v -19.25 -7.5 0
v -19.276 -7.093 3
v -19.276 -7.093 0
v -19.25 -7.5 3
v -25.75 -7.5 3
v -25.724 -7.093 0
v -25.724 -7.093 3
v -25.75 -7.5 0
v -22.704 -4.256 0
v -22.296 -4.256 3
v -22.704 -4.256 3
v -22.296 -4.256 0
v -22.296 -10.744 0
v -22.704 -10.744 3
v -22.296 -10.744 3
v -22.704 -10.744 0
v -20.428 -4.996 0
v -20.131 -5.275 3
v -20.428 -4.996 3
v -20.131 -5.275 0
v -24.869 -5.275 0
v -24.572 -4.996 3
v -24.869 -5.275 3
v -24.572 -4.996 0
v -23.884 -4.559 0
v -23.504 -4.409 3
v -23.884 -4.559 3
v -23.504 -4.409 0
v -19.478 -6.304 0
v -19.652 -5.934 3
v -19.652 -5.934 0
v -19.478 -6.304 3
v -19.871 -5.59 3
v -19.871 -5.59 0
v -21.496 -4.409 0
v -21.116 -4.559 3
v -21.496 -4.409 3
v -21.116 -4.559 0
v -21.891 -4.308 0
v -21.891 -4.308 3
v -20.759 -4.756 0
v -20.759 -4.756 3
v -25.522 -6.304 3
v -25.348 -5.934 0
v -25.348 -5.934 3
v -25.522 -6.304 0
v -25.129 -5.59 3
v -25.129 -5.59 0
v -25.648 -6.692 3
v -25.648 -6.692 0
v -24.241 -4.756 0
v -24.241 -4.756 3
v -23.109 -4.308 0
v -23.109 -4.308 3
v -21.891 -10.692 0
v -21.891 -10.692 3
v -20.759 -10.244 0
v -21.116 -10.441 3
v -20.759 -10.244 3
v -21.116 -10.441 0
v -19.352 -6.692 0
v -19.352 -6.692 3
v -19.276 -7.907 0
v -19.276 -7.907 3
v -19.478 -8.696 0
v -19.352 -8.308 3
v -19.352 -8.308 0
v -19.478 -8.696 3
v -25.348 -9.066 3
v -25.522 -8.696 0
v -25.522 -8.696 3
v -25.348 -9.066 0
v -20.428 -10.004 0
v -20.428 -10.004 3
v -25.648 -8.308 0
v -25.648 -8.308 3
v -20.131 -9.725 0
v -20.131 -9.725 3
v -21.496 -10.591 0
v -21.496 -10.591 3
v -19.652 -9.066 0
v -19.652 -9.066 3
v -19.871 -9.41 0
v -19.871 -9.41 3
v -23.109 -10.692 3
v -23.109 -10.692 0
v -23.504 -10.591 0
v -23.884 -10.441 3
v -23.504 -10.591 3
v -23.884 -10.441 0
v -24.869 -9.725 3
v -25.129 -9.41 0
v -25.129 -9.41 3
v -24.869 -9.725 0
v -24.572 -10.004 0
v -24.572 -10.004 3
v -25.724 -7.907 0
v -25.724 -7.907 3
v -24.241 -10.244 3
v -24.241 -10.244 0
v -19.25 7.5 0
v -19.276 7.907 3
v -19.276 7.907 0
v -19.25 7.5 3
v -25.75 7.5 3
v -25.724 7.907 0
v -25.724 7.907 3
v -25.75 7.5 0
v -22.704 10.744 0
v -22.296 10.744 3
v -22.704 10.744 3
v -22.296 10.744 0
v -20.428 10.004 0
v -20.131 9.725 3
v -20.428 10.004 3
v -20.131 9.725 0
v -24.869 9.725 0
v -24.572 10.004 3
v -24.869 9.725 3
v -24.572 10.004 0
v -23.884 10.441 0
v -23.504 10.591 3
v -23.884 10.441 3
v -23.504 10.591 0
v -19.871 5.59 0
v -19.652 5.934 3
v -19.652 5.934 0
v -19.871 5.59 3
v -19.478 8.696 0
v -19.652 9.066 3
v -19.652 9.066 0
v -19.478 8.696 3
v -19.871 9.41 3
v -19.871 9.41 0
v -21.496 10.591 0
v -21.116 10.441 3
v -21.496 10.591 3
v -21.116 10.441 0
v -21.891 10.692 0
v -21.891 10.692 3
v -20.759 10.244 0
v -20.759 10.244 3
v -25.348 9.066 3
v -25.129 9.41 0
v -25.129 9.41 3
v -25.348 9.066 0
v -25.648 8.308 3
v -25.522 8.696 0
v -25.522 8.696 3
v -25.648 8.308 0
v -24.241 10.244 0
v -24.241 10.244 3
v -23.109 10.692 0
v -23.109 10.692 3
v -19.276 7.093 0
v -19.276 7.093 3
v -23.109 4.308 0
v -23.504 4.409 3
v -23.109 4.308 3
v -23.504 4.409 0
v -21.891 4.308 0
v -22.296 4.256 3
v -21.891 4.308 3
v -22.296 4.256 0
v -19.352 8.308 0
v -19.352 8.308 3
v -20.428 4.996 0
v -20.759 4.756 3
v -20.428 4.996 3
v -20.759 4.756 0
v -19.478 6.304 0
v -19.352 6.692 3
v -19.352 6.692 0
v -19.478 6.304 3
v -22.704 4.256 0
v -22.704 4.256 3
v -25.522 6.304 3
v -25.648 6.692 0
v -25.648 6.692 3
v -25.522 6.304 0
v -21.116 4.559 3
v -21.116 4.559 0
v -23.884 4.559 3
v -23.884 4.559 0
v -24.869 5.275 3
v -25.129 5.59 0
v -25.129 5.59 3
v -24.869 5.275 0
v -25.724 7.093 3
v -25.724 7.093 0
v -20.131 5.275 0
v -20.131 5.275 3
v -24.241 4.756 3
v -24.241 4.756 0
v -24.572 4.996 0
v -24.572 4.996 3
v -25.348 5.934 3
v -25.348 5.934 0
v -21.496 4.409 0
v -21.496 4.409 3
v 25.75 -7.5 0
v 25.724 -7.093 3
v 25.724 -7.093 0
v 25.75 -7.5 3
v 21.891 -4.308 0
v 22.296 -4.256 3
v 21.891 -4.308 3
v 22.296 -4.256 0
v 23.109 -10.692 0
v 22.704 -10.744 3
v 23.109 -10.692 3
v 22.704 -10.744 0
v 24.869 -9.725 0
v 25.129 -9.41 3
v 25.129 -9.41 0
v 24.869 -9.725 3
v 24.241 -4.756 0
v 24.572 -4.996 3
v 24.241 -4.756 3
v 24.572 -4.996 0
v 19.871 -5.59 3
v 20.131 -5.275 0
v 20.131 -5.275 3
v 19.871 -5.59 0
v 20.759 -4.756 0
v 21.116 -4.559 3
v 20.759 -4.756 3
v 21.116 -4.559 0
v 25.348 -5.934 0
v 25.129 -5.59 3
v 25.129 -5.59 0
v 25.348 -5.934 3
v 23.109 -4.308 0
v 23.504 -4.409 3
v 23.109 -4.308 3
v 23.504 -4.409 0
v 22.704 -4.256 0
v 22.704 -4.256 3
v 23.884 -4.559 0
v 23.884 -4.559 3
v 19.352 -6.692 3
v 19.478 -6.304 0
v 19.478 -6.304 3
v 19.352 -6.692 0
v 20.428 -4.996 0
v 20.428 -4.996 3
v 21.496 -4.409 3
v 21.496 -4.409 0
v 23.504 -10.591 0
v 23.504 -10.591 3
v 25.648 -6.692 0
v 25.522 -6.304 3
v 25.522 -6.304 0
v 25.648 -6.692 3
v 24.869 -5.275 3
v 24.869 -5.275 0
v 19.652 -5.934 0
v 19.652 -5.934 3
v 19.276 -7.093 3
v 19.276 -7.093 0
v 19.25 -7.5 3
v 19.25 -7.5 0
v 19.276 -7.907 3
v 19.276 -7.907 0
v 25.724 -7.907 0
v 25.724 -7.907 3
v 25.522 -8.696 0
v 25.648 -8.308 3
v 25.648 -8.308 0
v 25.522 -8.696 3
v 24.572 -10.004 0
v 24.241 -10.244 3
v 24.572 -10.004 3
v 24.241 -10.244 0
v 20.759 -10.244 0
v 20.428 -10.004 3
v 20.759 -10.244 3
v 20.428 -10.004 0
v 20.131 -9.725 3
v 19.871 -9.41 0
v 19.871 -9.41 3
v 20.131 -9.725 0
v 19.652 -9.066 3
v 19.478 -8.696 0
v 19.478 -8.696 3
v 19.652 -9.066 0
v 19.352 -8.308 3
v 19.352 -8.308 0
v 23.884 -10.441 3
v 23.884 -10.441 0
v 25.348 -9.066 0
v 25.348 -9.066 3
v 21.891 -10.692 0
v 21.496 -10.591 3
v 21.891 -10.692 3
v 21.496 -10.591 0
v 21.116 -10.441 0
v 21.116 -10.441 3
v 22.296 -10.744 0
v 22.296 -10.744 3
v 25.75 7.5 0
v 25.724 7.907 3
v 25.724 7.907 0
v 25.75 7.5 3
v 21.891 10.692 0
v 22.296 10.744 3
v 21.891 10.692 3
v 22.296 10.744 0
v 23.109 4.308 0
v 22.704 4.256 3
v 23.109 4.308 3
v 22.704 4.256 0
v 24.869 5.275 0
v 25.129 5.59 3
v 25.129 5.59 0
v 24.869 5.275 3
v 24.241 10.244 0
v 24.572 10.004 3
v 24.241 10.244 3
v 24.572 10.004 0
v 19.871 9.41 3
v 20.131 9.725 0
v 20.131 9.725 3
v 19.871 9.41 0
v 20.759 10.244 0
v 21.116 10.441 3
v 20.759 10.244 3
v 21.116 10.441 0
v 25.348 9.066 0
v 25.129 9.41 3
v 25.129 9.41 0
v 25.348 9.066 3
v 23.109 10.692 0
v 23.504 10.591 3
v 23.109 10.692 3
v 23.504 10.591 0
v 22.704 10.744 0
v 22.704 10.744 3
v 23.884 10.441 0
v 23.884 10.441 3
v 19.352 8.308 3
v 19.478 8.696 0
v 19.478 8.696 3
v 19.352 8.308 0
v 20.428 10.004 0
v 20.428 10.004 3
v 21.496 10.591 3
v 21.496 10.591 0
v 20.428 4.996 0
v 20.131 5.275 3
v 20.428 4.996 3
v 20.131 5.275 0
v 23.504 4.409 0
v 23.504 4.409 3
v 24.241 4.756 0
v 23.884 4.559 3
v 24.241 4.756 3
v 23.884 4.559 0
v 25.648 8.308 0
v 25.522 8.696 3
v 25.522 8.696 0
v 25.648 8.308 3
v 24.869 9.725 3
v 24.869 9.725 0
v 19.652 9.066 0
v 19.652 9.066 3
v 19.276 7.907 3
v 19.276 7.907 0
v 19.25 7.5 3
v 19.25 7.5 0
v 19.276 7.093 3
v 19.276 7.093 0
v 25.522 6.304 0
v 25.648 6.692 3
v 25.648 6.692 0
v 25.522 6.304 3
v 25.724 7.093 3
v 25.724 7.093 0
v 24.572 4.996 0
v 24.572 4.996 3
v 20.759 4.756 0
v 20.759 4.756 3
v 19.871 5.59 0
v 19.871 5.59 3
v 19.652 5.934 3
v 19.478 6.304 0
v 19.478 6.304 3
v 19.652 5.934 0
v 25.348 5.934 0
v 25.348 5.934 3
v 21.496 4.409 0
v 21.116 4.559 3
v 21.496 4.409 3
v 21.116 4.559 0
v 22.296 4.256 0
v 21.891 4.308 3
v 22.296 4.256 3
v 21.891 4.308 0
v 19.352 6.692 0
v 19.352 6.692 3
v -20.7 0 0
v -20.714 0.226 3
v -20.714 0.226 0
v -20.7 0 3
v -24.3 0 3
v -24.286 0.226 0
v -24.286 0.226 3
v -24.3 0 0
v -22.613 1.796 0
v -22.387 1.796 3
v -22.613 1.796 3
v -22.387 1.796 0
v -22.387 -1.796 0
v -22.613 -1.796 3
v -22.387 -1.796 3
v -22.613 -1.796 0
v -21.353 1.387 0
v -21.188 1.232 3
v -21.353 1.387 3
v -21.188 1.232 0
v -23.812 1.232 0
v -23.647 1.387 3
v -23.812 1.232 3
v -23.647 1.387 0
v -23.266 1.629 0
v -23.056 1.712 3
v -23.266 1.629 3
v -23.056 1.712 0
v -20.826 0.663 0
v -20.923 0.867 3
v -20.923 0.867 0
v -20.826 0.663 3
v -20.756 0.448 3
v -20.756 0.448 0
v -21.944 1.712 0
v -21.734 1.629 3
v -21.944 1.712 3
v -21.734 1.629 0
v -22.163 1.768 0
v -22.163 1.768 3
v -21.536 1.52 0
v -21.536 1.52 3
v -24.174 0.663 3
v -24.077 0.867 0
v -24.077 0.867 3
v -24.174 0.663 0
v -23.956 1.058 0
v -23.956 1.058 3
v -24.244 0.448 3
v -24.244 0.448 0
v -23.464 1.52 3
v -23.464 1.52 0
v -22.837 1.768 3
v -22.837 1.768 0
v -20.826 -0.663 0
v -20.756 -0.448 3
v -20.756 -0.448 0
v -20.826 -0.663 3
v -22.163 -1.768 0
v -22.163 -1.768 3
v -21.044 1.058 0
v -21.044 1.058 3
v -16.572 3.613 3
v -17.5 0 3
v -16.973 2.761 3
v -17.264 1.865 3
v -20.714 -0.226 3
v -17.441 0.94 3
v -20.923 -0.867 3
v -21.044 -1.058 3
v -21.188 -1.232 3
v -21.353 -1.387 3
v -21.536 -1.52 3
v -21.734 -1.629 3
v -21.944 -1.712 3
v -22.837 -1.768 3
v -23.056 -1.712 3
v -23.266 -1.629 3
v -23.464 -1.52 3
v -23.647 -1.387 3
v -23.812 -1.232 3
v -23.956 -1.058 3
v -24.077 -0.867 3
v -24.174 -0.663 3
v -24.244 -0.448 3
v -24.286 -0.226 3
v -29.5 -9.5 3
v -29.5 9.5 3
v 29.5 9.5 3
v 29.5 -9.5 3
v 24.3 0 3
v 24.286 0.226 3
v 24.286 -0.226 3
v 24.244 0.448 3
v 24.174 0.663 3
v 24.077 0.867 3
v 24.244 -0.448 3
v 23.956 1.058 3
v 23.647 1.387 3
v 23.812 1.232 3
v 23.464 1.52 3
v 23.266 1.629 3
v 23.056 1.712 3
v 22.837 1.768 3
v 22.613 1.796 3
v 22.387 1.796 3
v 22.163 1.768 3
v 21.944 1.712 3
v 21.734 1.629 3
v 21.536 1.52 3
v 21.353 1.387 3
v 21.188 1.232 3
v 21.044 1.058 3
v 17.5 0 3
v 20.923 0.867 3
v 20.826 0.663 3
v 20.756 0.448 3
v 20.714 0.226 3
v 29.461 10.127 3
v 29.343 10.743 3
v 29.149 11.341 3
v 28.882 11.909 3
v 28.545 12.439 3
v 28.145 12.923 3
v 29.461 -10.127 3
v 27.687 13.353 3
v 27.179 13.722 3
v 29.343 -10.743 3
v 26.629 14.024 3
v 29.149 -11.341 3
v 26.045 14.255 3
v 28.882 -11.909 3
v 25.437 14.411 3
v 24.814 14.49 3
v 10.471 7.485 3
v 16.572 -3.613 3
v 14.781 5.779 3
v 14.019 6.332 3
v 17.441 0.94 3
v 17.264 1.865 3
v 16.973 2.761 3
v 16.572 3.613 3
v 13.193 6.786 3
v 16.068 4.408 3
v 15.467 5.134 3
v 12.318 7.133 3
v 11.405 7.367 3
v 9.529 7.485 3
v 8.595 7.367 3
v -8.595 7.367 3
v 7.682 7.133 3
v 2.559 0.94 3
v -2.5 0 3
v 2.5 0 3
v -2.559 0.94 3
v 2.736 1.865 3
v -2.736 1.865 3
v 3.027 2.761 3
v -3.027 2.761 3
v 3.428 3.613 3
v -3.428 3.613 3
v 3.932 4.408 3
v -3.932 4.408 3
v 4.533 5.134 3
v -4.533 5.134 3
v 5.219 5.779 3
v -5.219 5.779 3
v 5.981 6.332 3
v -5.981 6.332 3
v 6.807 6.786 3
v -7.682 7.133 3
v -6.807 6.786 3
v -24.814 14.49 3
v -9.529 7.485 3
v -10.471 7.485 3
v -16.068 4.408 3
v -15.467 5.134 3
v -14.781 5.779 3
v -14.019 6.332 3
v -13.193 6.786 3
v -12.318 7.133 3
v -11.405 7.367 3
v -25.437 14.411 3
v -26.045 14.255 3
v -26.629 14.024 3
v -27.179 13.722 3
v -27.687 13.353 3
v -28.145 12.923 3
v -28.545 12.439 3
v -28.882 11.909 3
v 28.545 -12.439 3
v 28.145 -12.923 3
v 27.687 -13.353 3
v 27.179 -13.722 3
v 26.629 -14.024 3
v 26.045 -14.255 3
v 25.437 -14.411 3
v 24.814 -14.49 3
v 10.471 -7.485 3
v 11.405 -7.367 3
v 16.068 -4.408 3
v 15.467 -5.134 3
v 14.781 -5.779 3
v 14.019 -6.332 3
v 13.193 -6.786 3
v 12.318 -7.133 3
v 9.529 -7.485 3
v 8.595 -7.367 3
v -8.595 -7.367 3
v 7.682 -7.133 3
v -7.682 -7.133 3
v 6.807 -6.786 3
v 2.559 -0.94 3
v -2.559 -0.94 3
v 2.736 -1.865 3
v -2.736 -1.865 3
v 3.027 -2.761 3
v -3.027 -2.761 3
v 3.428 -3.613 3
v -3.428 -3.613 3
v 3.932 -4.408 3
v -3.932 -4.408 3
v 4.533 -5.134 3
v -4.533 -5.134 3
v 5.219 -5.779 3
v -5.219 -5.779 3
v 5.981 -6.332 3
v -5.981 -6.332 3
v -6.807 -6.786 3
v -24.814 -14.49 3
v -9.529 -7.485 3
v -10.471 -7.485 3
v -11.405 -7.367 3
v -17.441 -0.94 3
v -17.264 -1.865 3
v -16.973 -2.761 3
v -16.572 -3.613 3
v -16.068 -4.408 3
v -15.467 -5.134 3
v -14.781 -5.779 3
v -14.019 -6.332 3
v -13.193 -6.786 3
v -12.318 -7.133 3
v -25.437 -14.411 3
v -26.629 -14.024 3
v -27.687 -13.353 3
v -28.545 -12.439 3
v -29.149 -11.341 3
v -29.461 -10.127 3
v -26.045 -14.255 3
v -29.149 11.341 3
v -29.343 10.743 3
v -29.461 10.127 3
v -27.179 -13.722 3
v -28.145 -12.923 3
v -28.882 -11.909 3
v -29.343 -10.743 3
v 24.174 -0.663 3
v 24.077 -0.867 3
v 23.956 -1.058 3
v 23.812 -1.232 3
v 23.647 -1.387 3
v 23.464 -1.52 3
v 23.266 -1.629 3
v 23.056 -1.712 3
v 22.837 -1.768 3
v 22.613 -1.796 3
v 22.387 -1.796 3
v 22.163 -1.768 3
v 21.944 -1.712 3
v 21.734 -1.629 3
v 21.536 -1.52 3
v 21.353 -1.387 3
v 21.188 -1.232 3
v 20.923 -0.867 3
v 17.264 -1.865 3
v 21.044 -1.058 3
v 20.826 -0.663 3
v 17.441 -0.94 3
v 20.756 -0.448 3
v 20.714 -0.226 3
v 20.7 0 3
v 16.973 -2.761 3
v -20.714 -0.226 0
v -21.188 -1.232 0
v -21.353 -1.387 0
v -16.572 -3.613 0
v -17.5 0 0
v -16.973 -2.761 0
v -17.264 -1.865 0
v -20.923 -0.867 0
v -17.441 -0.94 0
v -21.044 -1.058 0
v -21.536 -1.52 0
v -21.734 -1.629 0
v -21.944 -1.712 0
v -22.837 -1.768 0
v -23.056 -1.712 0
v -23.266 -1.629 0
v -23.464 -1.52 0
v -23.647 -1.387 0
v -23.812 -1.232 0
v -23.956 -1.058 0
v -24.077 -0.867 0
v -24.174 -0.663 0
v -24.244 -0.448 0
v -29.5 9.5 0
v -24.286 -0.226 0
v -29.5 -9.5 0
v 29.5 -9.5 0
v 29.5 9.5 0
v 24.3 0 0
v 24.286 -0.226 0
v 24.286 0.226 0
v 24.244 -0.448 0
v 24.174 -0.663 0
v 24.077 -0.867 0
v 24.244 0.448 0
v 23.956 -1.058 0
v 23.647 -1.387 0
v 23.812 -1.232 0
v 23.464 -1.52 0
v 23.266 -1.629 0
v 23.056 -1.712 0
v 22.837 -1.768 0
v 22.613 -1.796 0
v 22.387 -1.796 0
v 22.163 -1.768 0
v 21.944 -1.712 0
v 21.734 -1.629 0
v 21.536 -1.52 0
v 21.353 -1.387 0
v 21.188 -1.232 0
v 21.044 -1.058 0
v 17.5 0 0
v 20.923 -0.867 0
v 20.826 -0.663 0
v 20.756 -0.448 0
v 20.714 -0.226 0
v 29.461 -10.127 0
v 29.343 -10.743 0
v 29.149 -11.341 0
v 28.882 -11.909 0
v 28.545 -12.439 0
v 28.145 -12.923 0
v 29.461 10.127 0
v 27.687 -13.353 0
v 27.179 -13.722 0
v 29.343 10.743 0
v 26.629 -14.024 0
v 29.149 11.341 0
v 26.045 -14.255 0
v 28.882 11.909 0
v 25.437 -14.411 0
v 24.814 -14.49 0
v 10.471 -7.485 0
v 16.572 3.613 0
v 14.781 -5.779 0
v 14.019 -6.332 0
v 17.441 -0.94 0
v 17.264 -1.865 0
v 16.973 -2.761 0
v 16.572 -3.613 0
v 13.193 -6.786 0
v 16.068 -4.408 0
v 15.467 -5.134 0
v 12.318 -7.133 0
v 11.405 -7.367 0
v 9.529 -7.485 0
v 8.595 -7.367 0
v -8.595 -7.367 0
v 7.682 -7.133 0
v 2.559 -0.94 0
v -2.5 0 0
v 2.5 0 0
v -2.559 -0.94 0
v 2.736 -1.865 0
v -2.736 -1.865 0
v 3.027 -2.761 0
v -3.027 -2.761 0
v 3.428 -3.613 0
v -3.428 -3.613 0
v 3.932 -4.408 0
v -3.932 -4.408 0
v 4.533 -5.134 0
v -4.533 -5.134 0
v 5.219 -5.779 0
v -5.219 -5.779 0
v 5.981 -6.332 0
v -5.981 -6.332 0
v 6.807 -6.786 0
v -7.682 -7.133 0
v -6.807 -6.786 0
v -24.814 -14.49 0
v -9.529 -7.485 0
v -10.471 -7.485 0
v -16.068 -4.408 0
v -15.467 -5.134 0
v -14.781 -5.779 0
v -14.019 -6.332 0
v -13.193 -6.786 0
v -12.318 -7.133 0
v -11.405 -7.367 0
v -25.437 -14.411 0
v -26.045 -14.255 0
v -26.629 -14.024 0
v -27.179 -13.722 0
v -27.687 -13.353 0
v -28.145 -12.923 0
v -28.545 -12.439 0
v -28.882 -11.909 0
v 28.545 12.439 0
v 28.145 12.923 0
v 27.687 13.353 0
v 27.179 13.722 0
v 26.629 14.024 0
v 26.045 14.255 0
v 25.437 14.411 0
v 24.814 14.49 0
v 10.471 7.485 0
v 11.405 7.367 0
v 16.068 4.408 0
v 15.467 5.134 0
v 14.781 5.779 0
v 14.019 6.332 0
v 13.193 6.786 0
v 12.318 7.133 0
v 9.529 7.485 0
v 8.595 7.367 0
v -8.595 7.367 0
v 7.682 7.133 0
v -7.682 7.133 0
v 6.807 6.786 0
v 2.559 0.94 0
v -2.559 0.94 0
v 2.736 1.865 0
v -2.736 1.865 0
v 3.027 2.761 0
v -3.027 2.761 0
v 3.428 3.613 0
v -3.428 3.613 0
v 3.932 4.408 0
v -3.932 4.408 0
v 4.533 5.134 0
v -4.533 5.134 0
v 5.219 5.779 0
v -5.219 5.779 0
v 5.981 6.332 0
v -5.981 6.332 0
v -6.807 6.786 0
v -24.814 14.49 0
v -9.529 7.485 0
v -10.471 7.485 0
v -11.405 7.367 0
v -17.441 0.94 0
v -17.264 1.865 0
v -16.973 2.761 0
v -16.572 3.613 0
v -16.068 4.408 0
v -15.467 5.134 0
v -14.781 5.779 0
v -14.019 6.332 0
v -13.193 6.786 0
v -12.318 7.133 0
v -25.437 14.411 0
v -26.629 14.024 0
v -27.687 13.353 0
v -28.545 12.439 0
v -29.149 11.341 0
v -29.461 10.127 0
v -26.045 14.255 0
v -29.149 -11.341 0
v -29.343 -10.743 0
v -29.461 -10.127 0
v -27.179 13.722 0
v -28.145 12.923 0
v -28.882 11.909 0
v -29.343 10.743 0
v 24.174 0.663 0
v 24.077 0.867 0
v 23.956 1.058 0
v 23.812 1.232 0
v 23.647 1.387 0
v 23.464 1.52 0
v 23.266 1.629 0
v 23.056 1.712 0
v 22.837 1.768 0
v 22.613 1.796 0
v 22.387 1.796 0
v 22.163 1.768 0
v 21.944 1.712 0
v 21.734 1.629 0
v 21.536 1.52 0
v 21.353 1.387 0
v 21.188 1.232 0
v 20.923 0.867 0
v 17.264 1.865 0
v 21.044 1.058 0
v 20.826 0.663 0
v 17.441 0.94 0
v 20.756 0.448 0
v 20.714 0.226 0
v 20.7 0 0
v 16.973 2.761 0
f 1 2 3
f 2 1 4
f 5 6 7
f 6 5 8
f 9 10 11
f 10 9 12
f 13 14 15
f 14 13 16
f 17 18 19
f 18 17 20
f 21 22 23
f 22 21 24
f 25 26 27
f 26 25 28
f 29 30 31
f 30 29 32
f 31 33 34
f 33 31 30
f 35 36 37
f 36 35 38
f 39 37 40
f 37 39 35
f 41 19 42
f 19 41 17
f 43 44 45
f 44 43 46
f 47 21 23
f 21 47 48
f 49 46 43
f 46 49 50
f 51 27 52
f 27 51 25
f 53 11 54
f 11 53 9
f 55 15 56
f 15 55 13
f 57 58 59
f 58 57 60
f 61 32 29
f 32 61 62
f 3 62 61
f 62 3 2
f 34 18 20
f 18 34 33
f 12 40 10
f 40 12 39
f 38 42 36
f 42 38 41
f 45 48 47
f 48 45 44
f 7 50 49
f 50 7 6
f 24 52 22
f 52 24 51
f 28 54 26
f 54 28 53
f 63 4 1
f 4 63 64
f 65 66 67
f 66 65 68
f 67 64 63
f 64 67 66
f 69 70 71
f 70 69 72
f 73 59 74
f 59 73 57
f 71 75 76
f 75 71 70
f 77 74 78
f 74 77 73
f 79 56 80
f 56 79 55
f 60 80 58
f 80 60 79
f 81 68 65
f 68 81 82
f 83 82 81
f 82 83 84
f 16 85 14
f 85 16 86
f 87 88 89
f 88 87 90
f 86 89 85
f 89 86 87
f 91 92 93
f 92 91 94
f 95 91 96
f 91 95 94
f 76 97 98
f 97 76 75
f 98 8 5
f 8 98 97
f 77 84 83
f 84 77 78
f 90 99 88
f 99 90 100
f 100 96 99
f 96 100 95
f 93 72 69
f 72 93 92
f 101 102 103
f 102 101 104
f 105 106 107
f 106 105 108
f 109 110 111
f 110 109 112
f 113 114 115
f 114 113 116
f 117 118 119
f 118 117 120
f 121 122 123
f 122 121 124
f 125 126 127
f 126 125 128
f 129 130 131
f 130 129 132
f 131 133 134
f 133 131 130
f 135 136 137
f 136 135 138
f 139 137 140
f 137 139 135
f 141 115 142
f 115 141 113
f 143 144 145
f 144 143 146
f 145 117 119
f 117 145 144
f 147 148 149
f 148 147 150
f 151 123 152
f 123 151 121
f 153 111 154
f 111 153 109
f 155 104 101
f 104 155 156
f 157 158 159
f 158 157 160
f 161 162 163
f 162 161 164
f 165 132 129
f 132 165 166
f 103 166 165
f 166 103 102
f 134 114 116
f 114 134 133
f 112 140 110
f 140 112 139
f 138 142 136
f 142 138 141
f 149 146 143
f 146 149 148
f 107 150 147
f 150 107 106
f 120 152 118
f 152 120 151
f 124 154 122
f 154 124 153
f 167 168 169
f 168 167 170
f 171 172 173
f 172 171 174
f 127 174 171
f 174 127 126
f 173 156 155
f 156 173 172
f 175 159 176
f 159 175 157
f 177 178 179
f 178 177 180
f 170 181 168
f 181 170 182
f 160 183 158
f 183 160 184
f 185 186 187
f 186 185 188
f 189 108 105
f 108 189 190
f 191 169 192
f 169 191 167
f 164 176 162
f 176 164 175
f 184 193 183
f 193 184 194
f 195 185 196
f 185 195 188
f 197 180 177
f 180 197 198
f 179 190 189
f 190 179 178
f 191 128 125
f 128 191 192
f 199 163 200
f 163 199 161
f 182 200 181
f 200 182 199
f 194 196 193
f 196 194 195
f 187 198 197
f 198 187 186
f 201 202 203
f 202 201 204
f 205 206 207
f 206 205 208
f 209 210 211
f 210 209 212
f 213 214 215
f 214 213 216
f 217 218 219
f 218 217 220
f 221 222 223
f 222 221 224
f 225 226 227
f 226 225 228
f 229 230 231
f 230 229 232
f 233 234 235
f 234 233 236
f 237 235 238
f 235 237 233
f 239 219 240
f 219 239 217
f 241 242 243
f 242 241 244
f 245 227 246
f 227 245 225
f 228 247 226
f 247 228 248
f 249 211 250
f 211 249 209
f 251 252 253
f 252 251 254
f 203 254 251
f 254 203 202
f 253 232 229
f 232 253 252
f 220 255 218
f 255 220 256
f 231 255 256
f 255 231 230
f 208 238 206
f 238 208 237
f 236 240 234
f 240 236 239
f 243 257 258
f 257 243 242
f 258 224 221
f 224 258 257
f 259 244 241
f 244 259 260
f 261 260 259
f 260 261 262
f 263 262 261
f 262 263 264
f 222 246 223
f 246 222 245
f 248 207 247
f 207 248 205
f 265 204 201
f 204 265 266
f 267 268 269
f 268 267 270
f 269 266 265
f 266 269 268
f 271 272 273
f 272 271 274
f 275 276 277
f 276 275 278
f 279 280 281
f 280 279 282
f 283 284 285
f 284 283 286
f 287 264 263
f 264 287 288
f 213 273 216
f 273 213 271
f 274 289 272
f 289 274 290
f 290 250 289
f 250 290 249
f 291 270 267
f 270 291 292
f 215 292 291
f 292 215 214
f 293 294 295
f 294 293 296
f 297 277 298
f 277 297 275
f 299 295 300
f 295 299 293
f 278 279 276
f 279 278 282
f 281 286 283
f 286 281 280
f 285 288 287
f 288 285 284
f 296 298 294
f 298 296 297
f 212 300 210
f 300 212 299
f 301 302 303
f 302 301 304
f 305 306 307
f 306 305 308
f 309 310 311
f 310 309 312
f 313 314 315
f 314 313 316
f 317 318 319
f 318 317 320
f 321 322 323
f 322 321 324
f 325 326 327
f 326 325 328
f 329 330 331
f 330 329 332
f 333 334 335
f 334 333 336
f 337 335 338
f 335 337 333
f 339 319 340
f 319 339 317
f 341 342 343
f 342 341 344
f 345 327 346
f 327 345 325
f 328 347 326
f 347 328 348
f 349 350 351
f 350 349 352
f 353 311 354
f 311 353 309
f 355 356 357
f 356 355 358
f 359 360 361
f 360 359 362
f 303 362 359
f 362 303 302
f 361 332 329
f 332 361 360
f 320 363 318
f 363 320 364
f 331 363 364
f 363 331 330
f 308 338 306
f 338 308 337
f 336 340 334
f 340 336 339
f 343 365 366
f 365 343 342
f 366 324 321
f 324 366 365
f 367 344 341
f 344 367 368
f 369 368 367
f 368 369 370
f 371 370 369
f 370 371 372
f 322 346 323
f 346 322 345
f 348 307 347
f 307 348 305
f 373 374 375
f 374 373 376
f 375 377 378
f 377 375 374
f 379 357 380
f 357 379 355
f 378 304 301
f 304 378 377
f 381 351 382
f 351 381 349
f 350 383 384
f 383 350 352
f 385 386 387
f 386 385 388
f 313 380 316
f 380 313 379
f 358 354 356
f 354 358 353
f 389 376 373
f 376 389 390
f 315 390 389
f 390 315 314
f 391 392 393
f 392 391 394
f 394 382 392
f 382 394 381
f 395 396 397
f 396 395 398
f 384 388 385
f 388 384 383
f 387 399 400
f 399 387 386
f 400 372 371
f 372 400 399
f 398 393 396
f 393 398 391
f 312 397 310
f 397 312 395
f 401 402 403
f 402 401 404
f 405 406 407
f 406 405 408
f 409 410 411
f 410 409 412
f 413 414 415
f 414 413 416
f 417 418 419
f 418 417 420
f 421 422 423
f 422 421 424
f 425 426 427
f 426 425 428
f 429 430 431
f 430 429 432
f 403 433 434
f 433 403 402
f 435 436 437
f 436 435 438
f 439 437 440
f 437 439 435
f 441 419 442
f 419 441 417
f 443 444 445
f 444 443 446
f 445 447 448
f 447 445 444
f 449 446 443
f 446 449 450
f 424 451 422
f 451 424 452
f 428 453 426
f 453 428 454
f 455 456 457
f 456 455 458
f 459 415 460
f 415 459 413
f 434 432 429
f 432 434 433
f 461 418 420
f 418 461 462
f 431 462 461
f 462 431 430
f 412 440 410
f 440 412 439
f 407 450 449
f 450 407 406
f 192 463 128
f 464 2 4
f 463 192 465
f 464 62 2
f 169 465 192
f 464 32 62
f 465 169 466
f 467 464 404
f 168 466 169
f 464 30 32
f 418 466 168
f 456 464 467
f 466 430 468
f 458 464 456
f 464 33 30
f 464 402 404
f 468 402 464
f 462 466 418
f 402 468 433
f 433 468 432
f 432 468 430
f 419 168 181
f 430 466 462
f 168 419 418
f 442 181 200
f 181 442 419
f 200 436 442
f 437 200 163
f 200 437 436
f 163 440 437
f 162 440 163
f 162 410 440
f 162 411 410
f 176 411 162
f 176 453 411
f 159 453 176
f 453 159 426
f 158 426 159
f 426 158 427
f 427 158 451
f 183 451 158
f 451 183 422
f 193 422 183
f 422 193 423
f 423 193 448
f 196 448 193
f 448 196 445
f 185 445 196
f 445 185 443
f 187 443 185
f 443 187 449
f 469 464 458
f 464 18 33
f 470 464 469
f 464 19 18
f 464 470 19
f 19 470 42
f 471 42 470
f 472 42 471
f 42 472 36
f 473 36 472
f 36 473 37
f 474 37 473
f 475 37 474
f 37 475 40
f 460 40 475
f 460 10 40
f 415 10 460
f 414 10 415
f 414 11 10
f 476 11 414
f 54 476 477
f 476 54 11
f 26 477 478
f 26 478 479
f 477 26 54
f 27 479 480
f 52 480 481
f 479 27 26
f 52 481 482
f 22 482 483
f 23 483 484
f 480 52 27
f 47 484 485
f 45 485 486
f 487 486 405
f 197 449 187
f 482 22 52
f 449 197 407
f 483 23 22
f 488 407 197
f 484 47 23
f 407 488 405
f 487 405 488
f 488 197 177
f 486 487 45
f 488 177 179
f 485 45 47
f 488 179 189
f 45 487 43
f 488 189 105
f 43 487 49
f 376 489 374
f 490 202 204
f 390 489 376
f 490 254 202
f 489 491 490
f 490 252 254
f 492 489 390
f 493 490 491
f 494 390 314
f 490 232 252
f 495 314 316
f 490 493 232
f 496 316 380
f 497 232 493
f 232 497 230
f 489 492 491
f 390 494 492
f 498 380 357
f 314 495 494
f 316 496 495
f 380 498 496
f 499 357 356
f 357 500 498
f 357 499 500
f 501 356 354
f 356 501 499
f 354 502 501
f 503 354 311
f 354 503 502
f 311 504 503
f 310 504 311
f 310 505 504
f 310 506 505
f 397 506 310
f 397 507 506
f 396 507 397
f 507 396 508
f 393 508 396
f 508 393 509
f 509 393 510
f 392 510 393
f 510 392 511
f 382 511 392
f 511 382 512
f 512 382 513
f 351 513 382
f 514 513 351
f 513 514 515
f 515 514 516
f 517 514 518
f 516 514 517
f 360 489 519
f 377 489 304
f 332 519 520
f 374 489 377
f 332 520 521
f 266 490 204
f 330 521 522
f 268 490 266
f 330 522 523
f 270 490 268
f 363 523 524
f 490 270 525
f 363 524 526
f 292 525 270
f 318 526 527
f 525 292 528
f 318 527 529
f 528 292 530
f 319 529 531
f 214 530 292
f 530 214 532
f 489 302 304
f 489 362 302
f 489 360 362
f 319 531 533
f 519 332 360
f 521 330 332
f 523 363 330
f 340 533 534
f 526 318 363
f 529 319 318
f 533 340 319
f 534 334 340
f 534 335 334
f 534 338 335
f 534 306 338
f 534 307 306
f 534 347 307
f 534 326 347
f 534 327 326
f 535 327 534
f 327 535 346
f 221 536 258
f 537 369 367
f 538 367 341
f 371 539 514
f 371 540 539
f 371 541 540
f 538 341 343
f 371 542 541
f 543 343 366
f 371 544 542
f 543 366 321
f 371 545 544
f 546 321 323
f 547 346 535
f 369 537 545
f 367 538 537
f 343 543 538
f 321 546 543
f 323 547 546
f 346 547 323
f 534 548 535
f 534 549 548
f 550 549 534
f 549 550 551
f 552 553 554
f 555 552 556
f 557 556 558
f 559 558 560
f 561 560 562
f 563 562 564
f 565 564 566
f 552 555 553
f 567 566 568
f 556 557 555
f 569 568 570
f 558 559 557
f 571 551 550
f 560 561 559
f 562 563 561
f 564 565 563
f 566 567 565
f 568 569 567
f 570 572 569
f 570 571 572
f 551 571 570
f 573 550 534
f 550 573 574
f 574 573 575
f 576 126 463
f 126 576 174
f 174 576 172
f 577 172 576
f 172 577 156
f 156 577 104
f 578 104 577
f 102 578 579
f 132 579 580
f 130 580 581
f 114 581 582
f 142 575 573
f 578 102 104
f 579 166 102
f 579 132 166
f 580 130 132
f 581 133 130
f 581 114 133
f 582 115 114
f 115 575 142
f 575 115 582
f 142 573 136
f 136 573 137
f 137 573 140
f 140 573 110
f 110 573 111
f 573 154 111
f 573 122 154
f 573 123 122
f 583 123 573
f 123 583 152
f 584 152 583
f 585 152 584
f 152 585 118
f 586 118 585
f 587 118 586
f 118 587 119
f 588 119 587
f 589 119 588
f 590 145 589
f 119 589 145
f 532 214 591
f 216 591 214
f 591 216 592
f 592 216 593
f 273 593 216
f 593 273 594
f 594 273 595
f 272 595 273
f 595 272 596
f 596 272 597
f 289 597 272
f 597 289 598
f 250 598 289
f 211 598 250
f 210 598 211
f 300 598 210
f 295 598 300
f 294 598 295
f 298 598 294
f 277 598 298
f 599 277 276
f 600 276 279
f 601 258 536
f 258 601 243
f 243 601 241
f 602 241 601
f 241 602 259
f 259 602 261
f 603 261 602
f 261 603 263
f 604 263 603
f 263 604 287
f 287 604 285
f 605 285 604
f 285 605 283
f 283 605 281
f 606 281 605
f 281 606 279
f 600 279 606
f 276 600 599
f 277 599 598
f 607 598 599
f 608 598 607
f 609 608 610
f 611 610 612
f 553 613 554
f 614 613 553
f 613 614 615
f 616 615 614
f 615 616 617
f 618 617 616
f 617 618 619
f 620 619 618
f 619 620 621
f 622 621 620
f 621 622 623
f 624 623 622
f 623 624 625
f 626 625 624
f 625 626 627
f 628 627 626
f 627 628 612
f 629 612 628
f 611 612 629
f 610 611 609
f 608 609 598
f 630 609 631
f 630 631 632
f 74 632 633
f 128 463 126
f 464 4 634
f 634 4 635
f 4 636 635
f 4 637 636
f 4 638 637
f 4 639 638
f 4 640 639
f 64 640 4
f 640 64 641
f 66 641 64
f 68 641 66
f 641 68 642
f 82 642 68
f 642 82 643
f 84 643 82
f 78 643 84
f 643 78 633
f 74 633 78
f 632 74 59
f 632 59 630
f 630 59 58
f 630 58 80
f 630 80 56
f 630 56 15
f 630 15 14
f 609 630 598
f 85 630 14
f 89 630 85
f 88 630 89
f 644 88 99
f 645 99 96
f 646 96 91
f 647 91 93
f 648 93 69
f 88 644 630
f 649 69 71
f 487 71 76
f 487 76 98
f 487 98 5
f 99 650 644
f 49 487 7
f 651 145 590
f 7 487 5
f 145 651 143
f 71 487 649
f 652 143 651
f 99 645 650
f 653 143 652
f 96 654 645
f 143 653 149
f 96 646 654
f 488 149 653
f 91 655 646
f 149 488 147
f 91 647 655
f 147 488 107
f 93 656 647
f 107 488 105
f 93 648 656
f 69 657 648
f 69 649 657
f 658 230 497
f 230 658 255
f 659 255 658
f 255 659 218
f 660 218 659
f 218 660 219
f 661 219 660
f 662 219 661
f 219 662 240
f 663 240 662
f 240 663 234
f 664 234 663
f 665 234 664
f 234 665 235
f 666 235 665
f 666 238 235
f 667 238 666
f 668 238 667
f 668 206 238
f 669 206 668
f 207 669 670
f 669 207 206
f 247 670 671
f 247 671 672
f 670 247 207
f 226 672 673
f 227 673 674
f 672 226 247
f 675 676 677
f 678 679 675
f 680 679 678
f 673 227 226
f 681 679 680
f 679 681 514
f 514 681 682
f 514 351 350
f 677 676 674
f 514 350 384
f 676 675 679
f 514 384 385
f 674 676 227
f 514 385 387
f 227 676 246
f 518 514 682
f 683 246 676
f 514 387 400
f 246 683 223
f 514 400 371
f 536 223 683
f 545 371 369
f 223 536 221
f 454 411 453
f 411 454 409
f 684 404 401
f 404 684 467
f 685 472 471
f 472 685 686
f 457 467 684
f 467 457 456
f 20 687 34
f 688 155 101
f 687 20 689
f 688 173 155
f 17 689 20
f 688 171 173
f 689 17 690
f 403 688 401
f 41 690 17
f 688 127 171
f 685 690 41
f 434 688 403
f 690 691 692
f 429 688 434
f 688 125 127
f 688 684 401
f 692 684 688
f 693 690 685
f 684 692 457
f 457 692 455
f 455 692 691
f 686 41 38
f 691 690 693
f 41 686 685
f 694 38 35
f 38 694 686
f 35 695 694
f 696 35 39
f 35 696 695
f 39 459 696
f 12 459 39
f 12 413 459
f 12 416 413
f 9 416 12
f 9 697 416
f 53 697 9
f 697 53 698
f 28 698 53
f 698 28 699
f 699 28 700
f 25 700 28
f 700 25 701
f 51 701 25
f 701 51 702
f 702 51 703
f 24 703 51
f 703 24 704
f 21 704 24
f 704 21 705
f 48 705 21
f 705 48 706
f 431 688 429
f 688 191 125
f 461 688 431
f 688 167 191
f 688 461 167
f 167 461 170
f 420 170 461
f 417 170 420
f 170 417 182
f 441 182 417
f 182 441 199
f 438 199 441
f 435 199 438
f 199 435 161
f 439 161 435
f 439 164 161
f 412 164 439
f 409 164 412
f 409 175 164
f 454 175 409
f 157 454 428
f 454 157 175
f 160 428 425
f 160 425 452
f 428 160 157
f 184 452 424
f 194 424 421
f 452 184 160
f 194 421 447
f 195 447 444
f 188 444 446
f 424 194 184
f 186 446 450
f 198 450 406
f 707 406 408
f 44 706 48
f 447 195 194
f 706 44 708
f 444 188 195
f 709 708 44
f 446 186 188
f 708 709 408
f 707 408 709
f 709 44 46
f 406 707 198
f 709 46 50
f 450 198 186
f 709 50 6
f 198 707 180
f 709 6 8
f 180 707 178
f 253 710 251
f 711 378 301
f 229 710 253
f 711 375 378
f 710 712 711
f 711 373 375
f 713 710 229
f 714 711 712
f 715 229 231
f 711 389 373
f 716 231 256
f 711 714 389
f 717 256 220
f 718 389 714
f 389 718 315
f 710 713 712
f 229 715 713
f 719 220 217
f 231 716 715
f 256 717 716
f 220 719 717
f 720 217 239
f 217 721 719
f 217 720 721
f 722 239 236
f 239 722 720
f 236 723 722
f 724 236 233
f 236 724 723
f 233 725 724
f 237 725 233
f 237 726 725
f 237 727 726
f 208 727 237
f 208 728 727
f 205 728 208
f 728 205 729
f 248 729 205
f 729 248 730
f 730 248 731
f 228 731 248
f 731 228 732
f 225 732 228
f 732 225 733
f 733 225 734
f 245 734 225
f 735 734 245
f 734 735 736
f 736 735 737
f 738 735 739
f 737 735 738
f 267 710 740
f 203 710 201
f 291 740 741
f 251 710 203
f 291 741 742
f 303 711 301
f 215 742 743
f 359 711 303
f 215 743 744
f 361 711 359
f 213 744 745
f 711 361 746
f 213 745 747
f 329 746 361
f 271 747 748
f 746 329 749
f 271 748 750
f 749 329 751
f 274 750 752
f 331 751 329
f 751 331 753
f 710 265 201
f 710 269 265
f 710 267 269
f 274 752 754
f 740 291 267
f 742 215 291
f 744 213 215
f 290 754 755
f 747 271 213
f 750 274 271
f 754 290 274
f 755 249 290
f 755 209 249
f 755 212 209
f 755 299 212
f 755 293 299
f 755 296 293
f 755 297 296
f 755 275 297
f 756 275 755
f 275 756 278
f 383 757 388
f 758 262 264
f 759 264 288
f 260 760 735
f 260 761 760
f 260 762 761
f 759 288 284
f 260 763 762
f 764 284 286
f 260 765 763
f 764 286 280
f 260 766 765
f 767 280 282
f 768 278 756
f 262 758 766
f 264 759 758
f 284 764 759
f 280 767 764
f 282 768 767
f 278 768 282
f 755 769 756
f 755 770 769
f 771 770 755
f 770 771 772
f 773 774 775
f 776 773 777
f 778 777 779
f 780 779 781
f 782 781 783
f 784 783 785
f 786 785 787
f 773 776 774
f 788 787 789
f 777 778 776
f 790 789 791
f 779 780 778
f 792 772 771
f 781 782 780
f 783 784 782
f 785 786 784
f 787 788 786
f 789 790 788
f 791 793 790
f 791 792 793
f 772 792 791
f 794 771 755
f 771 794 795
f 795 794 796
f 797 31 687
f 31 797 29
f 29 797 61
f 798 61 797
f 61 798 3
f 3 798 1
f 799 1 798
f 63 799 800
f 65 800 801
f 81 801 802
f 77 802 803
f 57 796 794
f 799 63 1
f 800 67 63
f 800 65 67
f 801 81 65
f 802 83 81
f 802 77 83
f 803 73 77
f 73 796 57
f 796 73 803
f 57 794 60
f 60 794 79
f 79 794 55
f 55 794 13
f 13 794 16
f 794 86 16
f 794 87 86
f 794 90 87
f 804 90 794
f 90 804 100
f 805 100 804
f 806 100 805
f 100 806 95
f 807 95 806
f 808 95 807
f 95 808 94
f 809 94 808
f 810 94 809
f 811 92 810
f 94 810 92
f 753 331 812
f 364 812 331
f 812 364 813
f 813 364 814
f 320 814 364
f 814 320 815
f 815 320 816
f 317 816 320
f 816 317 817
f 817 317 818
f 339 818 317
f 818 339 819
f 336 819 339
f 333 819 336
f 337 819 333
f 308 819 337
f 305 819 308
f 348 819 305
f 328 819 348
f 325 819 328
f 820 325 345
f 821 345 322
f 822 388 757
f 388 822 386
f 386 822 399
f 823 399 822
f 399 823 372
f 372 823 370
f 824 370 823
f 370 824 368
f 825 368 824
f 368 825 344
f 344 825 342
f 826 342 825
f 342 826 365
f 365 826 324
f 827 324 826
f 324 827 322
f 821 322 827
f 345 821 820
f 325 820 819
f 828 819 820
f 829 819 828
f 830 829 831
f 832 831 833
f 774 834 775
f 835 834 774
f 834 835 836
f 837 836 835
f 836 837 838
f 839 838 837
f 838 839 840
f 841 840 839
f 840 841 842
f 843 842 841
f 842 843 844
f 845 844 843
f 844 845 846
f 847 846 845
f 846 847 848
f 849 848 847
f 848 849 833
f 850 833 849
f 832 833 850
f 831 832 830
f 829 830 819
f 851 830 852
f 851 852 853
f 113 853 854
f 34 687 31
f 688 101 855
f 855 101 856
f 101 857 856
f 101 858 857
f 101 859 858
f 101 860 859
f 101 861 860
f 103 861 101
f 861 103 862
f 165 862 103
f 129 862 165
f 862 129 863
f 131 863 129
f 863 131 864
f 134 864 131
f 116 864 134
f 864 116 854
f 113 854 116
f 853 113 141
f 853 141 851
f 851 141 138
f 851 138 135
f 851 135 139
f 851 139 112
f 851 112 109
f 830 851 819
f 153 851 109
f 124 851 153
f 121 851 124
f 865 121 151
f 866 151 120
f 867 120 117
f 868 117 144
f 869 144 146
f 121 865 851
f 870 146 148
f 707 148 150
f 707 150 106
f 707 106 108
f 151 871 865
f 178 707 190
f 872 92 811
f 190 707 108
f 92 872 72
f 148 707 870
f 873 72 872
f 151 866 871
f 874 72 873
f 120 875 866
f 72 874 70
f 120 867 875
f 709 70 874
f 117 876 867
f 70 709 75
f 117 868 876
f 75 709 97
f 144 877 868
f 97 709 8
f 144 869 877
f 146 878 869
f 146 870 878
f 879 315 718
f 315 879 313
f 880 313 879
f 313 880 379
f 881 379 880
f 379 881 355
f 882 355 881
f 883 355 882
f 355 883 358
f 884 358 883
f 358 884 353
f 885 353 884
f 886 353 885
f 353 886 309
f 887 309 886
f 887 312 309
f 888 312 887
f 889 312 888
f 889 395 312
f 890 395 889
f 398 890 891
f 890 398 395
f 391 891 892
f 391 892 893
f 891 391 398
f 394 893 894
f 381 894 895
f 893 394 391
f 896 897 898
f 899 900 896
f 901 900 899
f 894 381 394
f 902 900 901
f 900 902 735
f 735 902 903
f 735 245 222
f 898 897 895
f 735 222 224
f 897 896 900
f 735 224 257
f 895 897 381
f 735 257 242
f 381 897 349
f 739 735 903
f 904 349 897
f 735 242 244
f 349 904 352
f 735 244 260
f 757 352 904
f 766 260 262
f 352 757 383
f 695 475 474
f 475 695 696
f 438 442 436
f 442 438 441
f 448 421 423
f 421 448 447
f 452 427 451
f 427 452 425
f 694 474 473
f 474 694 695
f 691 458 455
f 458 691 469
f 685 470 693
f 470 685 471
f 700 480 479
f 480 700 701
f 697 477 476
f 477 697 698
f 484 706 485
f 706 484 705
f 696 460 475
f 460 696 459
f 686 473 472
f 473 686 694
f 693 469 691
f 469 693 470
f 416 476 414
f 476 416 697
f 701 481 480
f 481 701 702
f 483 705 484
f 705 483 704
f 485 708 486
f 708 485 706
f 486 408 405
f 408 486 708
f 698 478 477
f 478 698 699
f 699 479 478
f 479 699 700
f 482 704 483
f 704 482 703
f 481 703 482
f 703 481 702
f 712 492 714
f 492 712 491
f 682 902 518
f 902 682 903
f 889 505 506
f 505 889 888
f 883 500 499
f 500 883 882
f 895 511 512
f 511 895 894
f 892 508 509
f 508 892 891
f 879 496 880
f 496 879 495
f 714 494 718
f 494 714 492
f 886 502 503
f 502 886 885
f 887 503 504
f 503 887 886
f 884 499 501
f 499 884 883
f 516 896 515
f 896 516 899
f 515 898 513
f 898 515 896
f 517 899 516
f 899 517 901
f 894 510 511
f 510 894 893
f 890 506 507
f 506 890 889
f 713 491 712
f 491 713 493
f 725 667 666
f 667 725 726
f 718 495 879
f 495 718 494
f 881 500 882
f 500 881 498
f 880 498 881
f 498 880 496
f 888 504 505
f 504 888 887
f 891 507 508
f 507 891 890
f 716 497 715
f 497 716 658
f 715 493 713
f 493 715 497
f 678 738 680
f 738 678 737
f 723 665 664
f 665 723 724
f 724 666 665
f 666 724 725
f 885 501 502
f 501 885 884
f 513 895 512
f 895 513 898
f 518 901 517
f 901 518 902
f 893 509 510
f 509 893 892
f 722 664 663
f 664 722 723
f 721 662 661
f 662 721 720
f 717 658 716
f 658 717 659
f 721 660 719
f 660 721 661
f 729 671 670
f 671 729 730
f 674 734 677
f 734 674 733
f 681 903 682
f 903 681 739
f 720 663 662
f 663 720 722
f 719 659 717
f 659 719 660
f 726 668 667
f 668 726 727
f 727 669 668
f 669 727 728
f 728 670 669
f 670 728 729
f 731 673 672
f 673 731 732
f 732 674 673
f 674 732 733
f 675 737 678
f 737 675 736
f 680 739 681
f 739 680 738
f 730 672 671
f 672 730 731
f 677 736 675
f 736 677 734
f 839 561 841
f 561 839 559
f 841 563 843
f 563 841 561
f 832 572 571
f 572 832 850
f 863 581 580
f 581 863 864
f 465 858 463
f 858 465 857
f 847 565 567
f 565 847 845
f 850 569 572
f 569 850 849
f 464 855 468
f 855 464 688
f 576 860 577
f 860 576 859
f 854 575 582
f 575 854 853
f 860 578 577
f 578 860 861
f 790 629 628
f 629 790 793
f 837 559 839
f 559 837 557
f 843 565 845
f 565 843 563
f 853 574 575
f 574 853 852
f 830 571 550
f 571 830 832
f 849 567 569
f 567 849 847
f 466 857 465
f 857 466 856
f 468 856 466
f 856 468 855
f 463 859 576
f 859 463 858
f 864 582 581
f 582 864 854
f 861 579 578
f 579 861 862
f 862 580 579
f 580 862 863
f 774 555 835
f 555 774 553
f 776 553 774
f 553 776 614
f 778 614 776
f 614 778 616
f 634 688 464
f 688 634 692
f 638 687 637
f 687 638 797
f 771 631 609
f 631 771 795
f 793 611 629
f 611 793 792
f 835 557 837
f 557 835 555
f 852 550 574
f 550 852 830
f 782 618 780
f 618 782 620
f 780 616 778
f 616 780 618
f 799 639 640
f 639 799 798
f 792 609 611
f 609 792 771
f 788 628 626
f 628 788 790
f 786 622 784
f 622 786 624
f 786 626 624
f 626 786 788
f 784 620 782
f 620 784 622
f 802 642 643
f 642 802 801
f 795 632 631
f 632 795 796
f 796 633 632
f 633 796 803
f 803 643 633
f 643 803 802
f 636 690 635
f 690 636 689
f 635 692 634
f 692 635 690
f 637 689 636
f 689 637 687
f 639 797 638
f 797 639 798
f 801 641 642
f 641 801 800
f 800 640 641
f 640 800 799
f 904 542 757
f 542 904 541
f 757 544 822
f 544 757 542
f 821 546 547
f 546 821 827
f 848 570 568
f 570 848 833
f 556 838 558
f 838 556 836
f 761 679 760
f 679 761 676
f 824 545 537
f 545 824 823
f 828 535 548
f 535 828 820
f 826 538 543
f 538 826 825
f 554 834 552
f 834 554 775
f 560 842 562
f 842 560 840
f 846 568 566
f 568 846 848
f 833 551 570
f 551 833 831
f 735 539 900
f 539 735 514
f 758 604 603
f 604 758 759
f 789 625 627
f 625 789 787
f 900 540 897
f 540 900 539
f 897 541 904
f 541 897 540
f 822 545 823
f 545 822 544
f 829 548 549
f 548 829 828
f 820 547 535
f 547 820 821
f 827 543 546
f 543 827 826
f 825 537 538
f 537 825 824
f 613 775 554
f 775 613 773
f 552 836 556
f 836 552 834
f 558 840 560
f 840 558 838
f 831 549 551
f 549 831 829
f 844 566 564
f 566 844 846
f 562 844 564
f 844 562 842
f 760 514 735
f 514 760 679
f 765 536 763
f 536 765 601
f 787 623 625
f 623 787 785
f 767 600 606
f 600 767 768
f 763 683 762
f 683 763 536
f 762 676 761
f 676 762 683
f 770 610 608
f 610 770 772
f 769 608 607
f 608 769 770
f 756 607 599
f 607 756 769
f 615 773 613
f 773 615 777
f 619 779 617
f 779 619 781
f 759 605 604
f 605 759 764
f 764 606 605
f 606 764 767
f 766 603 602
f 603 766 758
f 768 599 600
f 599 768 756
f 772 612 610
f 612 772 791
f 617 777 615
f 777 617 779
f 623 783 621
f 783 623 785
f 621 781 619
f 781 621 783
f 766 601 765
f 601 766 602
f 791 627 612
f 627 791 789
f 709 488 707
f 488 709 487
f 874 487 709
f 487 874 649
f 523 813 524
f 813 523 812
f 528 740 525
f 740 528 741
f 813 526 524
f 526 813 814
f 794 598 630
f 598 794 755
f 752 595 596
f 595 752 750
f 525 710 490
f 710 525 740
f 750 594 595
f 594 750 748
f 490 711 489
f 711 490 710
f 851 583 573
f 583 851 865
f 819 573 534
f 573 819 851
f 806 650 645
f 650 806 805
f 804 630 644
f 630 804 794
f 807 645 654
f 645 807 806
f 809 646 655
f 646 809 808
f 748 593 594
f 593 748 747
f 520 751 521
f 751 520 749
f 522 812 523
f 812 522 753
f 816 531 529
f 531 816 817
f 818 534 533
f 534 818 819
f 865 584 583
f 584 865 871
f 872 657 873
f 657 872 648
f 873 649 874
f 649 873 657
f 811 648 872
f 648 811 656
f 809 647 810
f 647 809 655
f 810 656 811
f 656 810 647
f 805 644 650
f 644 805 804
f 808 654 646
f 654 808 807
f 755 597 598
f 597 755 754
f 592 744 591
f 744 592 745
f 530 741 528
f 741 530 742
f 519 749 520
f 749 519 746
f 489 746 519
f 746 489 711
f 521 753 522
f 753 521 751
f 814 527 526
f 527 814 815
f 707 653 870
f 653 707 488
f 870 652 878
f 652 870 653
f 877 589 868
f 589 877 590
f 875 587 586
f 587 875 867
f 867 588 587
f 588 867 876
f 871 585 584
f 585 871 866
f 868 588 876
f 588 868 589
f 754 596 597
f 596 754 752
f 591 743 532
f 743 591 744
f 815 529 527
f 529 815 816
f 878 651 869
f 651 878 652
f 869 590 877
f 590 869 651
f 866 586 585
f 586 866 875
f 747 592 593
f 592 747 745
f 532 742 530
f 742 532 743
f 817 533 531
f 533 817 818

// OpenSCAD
$fn = 50;


difference() {
	union() {
		hull() {
			translate(v = [-24.5000000000, 9.5000000000, 0]) {
				cylinder(h = 3, r = 5);
			}
			translate(v = [24.5000000000, 9.5000000000, 0]) {
				cylinder(h = 3, r = 5);
			}
			translate(v = [-24.5000000000, -9.5000000000, 0]) {
				cylinder(h = 3, r = 5);
			}
			translate(v = [24.5000000000, -9.5000000000, 0]) {
				cylinder(h = 3, r = 5);
			}
		}
	}
	union() {
		#translate(v = [-22.5000000000, -7.5000000000, 0]) {
			cylinder(h = 3, r = 3.2500000000);
		}
		#translate(v = [-22.5000000000, 7.5000000000, 0]) {
			cylinder(h = 3, r = 3.2500000000);
		}
		#translate(v = [22.5000000000, -7.5000000000, 0]) {
			cylinder(h = 3, r = 3.2500000000);
		}
		#translate(v = [22.5000000000, 7.5000000000, 0]) {
			cylinder(h = 3, r = 3.2500000000);
		}
		#translate(v = [-22.5000000000, -7.5000000000, -100.0000000000]) {
			cylinder(h = 200, r = 3.2500000000);
		}
		#translate(v = [-22.5000000000, 7.5000000000, -100.0000000000]) {
			cylinder(h = 200, r = 3.2500000000);
		}
		#translate(v = [22.5000000000, -7.5000000000, -100.0000000000]) {
			cylinder(h = 200, r = 3.2500000000);
		}
		#translate(v = [22.5000000000, 7.5000000000, -100.0000000000]) {
			cylinder(h = 200, r = 3.2500000000);
		}
		#translate(v = [-22.5000000000, -7.5000000000, 0]) {
			cylinder(h = 3, r = 1.8000000000);
		}
		#translate(v = [-22.5000000000, 0.0000000000, 0]) {
			cylinder(h = 3, r = 1.8000000000);
		}
		#translate(v = [-22.5000000000, 7.5000000000, 0]) {
			cylinder(h = 3, r = 1.8000000000);
		}
		#translate(v = [22.5000000000, -7.5000000000, 0]) {
			cylinder(h = 3, r = 1.8000000000);
		}
		#translate(v = [22.5000000000, 0.0000000000, 0]) {
			cylinder(h = 3, r = 1.8000000000);
		}
		#translate(v = [22.5000000000, 7.5000000000, 0]) {
			cylinder(h = 3, r = 1.8000000000);
		}
		#translate(v = [-22.5000000000, -7.5000000000, 0]) {
			cylinder(h = 3, r = 1.8000000000);
		}
		#translate(v = [-22.5000000000, 0.0000000000, 0]) {
			cylinder(h = 3, r = 1.8000000000);
		}
		#translate(v = [-22.5000000000, 7.5000000000, 0]) {
			cylinder(h = 3, r = 1.8000000000);
		}
		#translate(v = [22.5000000000, -7.5000000000, 0]) {
			cylinder(h = 3, r = 1.8000000000);
		}
		#translate(v = [22.5000000000, 0.0000000000, 0]) {
			cylinder(h = 3, r = 1.8000000000);
		}
		#translate(v = [22.5000000000, 7.5000000000, 0]) {
			cylinder(h = 3, r = 1.8000000000);
		}
		#translate(v = [-22.5000000000, -7.5000000000, 0]) {
			cylinder(h = 3, r = 1.8000000000);
		}
		#translate(v = [-22.5000000000, 0.0000000000, 0]) {
			cylinder(h = 3, r = 1.8000000000);
		}
		#translate(v = [-22.5000000000, 7.5000000000, 0]) {
			cylinder(h = 3, r = 1.8000000000);
		}
		#translate(v = [22.5000000000, -7.5000000000, 0]) {
			cylinder(h = 3, r = 1.8000000000);
		}
		#translate(v = [22.5000000000, 0.0000000000, 0]) {
			cylinder(h = 3, r = 1.8000000000);
		}
		#translate(v = [22.5000000000, 7.5000000000, 0]) {
			cylinder(h = 3, r = 1.8000000000);
		}
		#translate(v = [-10.0000000000, 0, 0]) {
			cylinder(h = 3, r = 7.5000000000);
		}
		#translate(v = [10.0000000000, 0, 0]) {
			cylinder(h = 3, r = 7.5000000000);
		}
	}
}
